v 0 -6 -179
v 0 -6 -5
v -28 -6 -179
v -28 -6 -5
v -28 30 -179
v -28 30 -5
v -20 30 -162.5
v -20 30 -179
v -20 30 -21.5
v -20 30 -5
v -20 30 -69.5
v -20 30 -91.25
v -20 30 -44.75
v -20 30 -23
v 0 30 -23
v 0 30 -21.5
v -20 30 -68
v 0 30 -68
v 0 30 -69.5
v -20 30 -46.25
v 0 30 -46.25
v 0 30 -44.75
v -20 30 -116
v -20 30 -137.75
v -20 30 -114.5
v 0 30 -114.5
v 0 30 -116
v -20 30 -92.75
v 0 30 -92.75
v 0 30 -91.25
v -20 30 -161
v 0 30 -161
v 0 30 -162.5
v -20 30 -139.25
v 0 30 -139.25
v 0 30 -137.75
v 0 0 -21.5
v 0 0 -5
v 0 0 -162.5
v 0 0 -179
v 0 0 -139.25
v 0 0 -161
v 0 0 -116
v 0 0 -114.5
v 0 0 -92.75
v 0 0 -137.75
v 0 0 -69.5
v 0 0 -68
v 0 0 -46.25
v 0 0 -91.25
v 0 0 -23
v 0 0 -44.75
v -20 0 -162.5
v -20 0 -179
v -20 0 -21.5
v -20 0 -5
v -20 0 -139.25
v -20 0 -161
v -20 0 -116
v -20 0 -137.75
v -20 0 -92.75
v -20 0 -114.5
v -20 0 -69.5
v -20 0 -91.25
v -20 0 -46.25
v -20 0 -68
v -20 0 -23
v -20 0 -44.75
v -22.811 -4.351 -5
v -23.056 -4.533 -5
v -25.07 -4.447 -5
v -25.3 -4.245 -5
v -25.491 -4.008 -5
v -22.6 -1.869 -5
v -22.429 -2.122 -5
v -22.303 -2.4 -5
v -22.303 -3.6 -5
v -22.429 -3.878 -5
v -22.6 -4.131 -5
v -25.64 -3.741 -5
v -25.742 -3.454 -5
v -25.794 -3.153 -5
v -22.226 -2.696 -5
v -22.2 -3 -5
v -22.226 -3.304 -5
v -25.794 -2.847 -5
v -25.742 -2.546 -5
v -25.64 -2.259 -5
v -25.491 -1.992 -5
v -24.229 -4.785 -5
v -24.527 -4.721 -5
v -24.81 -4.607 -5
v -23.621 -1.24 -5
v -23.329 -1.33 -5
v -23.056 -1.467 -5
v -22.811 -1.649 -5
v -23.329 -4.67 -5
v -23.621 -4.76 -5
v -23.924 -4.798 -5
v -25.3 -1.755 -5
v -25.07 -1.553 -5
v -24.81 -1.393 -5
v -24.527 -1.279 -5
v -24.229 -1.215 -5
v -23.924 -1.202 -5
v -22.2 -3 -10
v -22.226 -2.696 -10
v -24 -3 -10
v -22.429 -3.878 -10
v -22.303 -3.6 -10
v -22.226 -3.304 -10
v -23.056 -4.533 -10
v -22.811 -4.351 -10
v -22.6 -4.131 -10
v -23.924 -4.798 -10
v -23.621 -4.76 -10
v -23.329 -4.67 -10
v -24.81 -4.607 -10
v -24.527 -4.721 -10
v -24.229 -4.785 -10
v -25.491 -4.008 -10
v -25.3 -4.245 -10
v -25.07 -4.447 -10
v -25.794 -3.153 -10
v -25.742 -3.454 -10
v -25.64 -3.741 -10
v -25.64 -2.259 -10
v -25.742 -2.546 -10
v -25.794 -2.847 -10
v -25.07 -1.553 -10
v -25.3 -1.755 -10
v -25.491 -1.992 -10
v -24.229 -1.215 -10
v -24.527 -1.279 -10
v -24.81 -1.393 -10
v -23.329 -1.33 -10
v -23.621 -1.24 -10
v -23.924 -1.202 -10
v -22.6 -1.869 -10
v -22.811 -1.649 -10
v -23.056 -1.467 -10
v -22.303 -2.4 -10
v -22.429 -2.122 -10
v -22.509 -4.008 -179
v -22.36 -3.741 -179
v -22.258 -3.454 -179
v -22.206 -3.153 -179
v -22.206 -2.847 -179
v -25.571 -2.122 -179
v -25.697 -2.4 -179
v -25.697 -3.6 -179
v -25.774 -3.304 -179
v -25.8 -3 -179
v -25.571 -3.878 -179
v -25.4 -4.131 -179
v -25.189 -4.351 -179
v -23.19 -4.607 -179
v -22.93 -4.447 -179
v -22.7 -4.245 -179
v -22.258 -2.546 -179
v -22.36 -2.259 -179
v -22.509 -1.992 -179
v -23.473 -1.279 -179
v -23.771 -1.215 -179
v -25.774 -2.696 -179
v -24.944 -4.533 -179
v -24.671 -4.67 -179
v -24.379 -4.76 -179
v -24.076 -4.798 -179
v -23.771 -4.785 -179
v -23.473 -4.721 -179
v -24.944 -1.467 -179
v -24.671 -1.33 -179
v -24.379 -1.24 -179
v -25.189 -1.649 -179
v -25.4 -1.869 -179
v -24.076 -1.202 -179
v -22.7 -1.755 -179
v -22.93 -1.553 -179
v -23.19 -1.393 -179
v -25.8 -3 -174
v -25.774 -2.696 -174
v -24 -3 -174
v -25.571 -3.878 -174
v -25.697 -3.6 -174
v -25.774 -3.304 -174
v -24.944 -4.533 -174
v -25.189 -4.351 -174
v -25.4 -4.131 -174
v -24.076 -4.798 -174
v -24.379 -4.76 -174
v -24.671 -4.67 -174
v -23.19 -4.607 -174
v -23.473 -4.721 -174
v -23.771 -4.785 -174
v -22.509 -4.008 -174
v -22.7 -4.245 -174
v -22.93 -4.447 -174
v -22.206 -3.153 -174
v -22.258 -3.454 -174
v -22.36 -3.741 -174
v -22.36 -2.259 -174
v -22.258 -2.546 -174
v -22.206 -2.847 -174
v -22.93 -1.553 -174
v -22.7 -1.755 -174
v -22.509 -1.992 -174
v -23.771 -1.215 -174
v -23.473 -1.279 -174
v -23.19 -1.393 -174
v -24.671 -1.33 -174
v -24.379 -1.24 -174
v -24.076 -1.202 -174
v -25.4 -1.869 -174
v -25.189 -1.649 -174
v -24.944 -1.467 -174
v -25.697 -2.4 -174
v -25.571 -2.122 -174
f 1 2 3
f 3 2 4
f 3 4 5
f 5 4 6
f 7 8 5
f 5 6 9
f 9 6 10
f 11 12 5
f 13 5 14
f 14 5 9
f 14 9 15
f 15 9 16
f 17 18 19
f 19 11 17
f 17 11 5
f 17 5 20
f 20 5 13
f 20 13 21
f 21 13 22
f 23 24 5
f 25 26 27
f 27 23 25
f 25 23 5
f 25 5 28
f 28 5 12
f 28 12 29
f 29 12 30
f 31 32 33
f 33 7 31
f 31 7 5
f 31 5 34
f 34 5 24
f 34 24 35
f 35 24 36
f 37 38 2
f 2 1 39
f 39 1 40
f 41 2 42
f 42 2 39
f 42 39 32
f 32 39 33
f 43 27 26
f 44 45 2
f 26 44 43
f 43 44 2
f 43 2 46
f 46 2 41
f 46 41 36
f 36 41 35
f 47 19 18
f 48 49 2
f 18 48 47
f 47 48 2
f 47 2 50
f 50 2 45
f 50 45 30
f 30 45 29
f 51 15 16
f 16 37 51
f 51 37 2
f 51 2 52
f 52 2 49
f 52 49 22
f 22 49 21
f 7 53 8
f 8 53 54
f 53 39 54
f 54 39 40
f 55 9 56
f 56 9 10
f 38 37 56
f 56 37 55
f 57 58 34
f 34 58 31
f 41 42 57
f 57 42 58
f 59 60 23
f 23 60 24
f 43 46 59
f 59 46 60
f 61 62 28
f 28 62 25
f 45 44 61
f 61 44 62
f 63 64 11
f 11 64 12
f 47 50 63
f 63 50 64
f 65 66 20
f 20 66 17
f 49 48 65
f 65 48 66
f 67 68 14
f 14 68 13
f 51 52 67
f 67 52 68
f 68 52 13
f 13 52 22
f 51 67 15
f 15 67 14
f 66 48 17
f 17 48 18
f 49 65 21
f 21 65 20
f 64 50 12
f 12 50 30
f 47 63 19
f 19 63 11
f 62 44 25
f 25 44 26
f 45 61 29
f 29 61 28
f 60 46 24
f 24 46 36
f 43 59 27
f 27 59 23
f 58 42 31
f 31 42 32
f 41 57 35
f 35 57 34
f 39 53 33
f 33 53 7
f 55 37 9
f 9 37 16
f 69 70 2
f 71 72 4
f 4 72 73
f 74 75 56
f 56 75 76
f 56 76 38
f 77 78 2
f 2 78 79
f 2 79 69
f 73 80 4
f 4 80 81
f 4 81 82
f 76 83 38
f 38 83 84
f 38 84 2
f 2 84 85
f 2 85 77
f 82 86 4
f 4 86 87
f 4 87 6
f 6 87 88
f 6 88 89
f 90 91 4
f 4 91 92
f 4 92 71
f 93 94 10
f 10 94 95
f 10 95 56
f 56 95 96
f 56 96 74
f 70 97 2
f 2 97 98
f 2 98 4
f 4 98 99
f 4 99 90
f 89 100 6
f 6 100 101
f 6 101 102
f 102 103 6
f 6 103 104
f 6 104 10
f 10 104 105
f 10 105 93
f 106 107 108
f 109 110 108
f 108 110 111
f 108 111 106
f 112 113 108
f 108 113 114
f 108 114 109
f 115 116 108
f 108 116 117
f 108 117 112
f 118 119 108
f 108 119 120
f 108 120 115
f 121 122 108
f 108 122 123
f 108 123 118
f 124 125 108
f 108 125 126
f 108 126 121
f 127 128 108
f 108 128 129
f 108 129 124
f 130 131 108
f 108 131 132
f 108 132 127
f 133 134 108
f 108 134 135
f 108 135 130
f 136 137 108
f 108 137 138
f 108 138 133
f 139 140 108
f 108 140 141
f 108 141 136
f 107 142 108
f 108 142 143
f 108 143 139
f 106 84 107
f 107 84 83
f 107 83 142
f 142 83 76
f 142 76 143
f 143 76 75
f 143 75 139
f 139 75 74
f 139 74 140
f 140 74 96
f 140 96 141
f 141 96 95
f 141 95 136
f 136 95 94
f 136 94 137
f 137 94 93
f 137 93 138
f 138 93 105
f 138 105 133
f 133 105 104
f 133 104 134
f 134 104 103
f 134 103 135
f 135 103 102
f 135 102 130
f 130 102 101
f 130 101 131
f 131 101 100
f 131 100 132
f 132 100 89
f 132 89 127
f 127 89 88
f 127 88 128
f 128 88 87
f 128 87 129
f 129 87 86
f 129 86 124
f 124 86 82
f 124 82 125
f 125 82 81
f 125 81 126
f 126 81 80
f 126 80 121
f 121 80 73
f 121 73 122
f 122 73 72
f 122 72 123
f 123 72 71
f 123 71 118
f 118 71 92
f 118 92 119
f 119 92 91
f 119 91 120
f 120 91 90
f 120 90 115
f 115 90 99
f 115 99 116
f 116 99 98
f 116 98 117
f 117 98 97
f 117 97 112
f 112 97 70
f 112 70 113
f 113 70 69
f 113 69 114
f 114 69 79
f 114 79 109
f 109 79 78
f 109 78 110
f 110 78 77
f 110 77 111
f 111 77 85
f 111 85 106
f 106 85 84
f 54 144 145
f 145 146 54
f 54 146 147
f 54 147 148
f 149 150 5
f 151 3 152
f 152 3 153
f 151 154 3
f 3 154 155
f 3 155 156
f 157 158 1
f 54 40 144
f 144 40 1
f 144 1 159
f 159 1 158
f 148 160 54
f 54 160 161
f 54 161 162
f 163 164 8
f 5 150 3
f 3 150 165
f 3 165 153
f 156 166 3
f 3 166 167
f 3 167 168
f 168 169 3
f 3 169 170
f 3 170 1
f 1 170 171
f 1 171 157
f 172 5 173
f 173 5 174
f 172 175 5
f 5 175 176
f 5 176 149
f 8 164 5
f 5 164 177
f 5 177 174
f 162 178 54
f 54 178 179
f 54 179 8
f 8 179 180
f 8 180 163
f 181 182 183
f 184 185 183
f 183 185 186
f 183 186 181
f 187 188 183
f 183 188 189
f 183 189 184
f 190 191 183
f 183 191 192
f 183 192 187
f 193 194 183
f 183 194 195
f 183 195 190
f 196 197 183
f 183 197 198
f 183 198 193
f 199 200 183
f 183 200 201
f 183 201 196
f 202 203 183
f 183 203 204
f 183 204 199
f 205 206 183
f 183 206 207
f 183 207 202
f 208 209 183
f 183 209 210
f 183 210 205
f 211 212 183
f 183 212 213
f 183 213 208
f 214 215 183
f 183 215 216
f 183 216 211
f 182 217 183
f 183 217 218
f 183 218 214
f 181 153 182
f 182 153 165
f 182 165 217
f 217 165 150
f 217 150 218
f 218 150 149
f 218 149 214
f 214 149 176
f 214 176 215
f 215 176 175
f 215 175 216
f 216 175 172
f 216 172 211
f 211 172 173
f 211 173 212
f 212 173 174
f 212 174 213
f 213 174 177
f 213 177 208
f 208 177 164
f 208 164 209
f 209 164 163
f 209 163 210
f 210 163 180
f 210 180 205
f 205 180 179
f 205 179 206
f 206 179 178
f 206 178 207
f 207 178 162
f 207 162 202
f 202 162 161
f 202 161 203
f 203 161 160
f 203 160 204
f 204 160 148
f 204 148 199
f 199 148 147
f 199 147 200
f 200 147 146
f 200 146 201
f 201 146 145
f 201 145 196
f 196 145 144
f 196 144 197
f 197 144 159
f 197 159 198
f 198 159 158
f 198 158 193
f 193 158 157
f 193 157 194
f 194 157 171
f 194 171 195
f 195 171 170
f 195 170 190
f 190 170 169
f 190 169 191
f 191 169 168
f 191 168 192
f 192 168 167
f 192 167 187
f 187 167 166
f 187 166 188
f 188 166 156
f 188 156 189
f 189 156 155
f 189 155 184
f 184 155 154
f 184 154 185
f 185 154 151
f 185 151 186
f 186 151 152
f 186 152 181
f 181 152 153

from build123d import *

# Parameters (mm, degrees)
LEG_DEPTH              = 184
SKETCH5_W              = 20
SKETCH5_H              = 21.25
CELL_SLOTS_DEPTH       = 30
SKETCH6_W              = 20
SKETCH6_H              = 0.25
CELL_SLOTS_TRIM_DEPTH  = 30
SKETCH7_R              = 1.8
SCREW_HOLE_FRONT_DEPTH = 10
SCREW_START            = -10
SKETCH8_R              = 1.8
SCREW_HOLE_BACK_DEPTH  = 10
SKETCH9_W              = 28
SKETCH9_H              = 36
FRONT_TRIM_DEPTH       = 5
SKETCH10_W             = 28
SKETCH10_H             = 36
BACK_TRIM_DEPTH        = 5


with BuildPart() as part:
    # Sketch1 → Leg (new body)
    with BuildSketch(Plane.XY):
        Polygon((0, -6), (0, 0), (0, 30), (-28, 30), (-28, -6), align=None)
    extrude(amount=-LEG_DEPTH)

    # Sketch5 → Cell Slots (cut)
    with BuildSketch(Plane(origin=(0, 30, 0), x_dir=(1, 0, 0), z_dir=(0, 1, 0))):
        with Locations((-10, 33.875)):
            Rectangle(SKETCH5_W, SKETCH5_H)
        with Locations((-10, 10.625)):
            Rectangle(SKETCH5_W, SKETCH5_H)
        with Locations((-10, 57.125)):
            Rectangle(SKETCH5_W, SKETCH5_H)
        with Locations((-10, 80.375)):
            Rectangle(SKETCH5_W, SKETCH5_H)
        with Locations((-10, 103.625)):
            Rectangle(SKETCH5_W, SKETCH5_H)
        with Locations((-10, 126.875)):
            Rectangle(SKETCH5_W, SKETCH5_H)
        with Locations((-10, 150.125)):
            Rectangle(SKETCH5_W, SKETCH5_H)
        with Locations((-10, 173.375)):
            Rectangle(SKETCH5_W, SKETCH5_H)
    extrude(amount=-CELL_SLOTS_DEPTH, mode=Mode.SUBTRACT)

    # Sketch6 → Cell Slots Trim (cut)
    with BuildSketch(Plane(origin=(0, 30, 0), x_dir=(1, 0, 0), z_dir=(0, 1, 0))):
        with Locations((-10, 21.375)):
            Rectangle(SKETCH6_W, SKETCH6_H)
        with Locations((-10, 23.125)):
            Rectangle(SKETCH6_W, SKETCH6_H)
        with Locations((-10, 44.625)):
            Rectangle(SKETCH6_W, SKETCH6_H)
        with Locations((-10, 46.375)):
            Rectangle(SKETCH6_W, SKETCH6_H)
        with Locations((-10, 67.875)):
            Rectangle(SKETCH6_W, SKETCH6_H)
        with Locations((-10, 69.625)):
            Rectangle(SKETCH6_W, SKETCH6_H)
        with Locations((-10, 91.125)):
            Rectangle(SKETCH6_W, SKETCH6_H)
        with Locations((-10, 92.875)):
            Rectangle(SKETCH6_W, SKETCH6_H)
        with Locations((-10, 114.375)):
            Rectangle(SKETCH6_W, SKETCH6_H)
        with Locations((-10, 116.125)):
            Rectangle(SKETCH6_W, SKETCH6_H)
        with Locations((-10, 137.625)):
            Rectangle(SKETCH6_W, SKETCH6_H)
        with Locations((-10, 139.375)):
            Rectangle(SKETCH6_W, SKETCH6_H)
        with Locations((-10, 160.875)):
            Rectangle(SKETCH6_W, SKETCH6_H)
        with Locations((-10, 162.625)):
            Rectangle(SKETCH6_W, SKETCH6_H)
    extrude(amount=-CELL_SLOTS_TRIM_DEPTH, mode=Mode.SUBTRACT)

    # Sketch7 → Screw Hole Front (cut)
    with BuildSketch(Plane.XY):
        with Locations((-24, -3)):
            Circle(SKETCH7_R)
    extrude(amount=-SCREW_HOLE_FRONT_DEPTH, mode=Mode.SUBTRACT)

    # Sketch8 → Screw Hole Back (cut)
    with BuildSketch(Plane(origin=(0, 0, -184), x_dir=(-1, 0, 0), z_dir=(0, 0, -1)).offset(SCREW_START)):
        with Locations((24, -3)):
            Circle(SKETCH8_R)
    extrude(amount=SCREW_HOLE_BACK_DEPTH, mode=Mode.SUBTRACT)

    # Sketch9 → Front Trim (cut)
    with BuildSketch(Plane.XY):
        with Locations((-14, 12)):
            Rectangle(SKETCH9_W, SKETCH9_H)
    extrude(amount=-FRONT_TRIM_DEPTH, mode=Mode.SUBTRACT)

    # Sketch10 → Back Trim (cut)
    with BuildSketch(Plane(origin=(0, 0, -184), x_dir=(-1, 0, 0), z_dir=(0, 0, -1))):
        with Locations((14, 12)):
            Rectangle(SKETCH10_W, SKETCH10_H)
    extrude(amount=-BACK_TRIM_DEPTH, mode=Mode.SUBTRACT)


solid = part.part
